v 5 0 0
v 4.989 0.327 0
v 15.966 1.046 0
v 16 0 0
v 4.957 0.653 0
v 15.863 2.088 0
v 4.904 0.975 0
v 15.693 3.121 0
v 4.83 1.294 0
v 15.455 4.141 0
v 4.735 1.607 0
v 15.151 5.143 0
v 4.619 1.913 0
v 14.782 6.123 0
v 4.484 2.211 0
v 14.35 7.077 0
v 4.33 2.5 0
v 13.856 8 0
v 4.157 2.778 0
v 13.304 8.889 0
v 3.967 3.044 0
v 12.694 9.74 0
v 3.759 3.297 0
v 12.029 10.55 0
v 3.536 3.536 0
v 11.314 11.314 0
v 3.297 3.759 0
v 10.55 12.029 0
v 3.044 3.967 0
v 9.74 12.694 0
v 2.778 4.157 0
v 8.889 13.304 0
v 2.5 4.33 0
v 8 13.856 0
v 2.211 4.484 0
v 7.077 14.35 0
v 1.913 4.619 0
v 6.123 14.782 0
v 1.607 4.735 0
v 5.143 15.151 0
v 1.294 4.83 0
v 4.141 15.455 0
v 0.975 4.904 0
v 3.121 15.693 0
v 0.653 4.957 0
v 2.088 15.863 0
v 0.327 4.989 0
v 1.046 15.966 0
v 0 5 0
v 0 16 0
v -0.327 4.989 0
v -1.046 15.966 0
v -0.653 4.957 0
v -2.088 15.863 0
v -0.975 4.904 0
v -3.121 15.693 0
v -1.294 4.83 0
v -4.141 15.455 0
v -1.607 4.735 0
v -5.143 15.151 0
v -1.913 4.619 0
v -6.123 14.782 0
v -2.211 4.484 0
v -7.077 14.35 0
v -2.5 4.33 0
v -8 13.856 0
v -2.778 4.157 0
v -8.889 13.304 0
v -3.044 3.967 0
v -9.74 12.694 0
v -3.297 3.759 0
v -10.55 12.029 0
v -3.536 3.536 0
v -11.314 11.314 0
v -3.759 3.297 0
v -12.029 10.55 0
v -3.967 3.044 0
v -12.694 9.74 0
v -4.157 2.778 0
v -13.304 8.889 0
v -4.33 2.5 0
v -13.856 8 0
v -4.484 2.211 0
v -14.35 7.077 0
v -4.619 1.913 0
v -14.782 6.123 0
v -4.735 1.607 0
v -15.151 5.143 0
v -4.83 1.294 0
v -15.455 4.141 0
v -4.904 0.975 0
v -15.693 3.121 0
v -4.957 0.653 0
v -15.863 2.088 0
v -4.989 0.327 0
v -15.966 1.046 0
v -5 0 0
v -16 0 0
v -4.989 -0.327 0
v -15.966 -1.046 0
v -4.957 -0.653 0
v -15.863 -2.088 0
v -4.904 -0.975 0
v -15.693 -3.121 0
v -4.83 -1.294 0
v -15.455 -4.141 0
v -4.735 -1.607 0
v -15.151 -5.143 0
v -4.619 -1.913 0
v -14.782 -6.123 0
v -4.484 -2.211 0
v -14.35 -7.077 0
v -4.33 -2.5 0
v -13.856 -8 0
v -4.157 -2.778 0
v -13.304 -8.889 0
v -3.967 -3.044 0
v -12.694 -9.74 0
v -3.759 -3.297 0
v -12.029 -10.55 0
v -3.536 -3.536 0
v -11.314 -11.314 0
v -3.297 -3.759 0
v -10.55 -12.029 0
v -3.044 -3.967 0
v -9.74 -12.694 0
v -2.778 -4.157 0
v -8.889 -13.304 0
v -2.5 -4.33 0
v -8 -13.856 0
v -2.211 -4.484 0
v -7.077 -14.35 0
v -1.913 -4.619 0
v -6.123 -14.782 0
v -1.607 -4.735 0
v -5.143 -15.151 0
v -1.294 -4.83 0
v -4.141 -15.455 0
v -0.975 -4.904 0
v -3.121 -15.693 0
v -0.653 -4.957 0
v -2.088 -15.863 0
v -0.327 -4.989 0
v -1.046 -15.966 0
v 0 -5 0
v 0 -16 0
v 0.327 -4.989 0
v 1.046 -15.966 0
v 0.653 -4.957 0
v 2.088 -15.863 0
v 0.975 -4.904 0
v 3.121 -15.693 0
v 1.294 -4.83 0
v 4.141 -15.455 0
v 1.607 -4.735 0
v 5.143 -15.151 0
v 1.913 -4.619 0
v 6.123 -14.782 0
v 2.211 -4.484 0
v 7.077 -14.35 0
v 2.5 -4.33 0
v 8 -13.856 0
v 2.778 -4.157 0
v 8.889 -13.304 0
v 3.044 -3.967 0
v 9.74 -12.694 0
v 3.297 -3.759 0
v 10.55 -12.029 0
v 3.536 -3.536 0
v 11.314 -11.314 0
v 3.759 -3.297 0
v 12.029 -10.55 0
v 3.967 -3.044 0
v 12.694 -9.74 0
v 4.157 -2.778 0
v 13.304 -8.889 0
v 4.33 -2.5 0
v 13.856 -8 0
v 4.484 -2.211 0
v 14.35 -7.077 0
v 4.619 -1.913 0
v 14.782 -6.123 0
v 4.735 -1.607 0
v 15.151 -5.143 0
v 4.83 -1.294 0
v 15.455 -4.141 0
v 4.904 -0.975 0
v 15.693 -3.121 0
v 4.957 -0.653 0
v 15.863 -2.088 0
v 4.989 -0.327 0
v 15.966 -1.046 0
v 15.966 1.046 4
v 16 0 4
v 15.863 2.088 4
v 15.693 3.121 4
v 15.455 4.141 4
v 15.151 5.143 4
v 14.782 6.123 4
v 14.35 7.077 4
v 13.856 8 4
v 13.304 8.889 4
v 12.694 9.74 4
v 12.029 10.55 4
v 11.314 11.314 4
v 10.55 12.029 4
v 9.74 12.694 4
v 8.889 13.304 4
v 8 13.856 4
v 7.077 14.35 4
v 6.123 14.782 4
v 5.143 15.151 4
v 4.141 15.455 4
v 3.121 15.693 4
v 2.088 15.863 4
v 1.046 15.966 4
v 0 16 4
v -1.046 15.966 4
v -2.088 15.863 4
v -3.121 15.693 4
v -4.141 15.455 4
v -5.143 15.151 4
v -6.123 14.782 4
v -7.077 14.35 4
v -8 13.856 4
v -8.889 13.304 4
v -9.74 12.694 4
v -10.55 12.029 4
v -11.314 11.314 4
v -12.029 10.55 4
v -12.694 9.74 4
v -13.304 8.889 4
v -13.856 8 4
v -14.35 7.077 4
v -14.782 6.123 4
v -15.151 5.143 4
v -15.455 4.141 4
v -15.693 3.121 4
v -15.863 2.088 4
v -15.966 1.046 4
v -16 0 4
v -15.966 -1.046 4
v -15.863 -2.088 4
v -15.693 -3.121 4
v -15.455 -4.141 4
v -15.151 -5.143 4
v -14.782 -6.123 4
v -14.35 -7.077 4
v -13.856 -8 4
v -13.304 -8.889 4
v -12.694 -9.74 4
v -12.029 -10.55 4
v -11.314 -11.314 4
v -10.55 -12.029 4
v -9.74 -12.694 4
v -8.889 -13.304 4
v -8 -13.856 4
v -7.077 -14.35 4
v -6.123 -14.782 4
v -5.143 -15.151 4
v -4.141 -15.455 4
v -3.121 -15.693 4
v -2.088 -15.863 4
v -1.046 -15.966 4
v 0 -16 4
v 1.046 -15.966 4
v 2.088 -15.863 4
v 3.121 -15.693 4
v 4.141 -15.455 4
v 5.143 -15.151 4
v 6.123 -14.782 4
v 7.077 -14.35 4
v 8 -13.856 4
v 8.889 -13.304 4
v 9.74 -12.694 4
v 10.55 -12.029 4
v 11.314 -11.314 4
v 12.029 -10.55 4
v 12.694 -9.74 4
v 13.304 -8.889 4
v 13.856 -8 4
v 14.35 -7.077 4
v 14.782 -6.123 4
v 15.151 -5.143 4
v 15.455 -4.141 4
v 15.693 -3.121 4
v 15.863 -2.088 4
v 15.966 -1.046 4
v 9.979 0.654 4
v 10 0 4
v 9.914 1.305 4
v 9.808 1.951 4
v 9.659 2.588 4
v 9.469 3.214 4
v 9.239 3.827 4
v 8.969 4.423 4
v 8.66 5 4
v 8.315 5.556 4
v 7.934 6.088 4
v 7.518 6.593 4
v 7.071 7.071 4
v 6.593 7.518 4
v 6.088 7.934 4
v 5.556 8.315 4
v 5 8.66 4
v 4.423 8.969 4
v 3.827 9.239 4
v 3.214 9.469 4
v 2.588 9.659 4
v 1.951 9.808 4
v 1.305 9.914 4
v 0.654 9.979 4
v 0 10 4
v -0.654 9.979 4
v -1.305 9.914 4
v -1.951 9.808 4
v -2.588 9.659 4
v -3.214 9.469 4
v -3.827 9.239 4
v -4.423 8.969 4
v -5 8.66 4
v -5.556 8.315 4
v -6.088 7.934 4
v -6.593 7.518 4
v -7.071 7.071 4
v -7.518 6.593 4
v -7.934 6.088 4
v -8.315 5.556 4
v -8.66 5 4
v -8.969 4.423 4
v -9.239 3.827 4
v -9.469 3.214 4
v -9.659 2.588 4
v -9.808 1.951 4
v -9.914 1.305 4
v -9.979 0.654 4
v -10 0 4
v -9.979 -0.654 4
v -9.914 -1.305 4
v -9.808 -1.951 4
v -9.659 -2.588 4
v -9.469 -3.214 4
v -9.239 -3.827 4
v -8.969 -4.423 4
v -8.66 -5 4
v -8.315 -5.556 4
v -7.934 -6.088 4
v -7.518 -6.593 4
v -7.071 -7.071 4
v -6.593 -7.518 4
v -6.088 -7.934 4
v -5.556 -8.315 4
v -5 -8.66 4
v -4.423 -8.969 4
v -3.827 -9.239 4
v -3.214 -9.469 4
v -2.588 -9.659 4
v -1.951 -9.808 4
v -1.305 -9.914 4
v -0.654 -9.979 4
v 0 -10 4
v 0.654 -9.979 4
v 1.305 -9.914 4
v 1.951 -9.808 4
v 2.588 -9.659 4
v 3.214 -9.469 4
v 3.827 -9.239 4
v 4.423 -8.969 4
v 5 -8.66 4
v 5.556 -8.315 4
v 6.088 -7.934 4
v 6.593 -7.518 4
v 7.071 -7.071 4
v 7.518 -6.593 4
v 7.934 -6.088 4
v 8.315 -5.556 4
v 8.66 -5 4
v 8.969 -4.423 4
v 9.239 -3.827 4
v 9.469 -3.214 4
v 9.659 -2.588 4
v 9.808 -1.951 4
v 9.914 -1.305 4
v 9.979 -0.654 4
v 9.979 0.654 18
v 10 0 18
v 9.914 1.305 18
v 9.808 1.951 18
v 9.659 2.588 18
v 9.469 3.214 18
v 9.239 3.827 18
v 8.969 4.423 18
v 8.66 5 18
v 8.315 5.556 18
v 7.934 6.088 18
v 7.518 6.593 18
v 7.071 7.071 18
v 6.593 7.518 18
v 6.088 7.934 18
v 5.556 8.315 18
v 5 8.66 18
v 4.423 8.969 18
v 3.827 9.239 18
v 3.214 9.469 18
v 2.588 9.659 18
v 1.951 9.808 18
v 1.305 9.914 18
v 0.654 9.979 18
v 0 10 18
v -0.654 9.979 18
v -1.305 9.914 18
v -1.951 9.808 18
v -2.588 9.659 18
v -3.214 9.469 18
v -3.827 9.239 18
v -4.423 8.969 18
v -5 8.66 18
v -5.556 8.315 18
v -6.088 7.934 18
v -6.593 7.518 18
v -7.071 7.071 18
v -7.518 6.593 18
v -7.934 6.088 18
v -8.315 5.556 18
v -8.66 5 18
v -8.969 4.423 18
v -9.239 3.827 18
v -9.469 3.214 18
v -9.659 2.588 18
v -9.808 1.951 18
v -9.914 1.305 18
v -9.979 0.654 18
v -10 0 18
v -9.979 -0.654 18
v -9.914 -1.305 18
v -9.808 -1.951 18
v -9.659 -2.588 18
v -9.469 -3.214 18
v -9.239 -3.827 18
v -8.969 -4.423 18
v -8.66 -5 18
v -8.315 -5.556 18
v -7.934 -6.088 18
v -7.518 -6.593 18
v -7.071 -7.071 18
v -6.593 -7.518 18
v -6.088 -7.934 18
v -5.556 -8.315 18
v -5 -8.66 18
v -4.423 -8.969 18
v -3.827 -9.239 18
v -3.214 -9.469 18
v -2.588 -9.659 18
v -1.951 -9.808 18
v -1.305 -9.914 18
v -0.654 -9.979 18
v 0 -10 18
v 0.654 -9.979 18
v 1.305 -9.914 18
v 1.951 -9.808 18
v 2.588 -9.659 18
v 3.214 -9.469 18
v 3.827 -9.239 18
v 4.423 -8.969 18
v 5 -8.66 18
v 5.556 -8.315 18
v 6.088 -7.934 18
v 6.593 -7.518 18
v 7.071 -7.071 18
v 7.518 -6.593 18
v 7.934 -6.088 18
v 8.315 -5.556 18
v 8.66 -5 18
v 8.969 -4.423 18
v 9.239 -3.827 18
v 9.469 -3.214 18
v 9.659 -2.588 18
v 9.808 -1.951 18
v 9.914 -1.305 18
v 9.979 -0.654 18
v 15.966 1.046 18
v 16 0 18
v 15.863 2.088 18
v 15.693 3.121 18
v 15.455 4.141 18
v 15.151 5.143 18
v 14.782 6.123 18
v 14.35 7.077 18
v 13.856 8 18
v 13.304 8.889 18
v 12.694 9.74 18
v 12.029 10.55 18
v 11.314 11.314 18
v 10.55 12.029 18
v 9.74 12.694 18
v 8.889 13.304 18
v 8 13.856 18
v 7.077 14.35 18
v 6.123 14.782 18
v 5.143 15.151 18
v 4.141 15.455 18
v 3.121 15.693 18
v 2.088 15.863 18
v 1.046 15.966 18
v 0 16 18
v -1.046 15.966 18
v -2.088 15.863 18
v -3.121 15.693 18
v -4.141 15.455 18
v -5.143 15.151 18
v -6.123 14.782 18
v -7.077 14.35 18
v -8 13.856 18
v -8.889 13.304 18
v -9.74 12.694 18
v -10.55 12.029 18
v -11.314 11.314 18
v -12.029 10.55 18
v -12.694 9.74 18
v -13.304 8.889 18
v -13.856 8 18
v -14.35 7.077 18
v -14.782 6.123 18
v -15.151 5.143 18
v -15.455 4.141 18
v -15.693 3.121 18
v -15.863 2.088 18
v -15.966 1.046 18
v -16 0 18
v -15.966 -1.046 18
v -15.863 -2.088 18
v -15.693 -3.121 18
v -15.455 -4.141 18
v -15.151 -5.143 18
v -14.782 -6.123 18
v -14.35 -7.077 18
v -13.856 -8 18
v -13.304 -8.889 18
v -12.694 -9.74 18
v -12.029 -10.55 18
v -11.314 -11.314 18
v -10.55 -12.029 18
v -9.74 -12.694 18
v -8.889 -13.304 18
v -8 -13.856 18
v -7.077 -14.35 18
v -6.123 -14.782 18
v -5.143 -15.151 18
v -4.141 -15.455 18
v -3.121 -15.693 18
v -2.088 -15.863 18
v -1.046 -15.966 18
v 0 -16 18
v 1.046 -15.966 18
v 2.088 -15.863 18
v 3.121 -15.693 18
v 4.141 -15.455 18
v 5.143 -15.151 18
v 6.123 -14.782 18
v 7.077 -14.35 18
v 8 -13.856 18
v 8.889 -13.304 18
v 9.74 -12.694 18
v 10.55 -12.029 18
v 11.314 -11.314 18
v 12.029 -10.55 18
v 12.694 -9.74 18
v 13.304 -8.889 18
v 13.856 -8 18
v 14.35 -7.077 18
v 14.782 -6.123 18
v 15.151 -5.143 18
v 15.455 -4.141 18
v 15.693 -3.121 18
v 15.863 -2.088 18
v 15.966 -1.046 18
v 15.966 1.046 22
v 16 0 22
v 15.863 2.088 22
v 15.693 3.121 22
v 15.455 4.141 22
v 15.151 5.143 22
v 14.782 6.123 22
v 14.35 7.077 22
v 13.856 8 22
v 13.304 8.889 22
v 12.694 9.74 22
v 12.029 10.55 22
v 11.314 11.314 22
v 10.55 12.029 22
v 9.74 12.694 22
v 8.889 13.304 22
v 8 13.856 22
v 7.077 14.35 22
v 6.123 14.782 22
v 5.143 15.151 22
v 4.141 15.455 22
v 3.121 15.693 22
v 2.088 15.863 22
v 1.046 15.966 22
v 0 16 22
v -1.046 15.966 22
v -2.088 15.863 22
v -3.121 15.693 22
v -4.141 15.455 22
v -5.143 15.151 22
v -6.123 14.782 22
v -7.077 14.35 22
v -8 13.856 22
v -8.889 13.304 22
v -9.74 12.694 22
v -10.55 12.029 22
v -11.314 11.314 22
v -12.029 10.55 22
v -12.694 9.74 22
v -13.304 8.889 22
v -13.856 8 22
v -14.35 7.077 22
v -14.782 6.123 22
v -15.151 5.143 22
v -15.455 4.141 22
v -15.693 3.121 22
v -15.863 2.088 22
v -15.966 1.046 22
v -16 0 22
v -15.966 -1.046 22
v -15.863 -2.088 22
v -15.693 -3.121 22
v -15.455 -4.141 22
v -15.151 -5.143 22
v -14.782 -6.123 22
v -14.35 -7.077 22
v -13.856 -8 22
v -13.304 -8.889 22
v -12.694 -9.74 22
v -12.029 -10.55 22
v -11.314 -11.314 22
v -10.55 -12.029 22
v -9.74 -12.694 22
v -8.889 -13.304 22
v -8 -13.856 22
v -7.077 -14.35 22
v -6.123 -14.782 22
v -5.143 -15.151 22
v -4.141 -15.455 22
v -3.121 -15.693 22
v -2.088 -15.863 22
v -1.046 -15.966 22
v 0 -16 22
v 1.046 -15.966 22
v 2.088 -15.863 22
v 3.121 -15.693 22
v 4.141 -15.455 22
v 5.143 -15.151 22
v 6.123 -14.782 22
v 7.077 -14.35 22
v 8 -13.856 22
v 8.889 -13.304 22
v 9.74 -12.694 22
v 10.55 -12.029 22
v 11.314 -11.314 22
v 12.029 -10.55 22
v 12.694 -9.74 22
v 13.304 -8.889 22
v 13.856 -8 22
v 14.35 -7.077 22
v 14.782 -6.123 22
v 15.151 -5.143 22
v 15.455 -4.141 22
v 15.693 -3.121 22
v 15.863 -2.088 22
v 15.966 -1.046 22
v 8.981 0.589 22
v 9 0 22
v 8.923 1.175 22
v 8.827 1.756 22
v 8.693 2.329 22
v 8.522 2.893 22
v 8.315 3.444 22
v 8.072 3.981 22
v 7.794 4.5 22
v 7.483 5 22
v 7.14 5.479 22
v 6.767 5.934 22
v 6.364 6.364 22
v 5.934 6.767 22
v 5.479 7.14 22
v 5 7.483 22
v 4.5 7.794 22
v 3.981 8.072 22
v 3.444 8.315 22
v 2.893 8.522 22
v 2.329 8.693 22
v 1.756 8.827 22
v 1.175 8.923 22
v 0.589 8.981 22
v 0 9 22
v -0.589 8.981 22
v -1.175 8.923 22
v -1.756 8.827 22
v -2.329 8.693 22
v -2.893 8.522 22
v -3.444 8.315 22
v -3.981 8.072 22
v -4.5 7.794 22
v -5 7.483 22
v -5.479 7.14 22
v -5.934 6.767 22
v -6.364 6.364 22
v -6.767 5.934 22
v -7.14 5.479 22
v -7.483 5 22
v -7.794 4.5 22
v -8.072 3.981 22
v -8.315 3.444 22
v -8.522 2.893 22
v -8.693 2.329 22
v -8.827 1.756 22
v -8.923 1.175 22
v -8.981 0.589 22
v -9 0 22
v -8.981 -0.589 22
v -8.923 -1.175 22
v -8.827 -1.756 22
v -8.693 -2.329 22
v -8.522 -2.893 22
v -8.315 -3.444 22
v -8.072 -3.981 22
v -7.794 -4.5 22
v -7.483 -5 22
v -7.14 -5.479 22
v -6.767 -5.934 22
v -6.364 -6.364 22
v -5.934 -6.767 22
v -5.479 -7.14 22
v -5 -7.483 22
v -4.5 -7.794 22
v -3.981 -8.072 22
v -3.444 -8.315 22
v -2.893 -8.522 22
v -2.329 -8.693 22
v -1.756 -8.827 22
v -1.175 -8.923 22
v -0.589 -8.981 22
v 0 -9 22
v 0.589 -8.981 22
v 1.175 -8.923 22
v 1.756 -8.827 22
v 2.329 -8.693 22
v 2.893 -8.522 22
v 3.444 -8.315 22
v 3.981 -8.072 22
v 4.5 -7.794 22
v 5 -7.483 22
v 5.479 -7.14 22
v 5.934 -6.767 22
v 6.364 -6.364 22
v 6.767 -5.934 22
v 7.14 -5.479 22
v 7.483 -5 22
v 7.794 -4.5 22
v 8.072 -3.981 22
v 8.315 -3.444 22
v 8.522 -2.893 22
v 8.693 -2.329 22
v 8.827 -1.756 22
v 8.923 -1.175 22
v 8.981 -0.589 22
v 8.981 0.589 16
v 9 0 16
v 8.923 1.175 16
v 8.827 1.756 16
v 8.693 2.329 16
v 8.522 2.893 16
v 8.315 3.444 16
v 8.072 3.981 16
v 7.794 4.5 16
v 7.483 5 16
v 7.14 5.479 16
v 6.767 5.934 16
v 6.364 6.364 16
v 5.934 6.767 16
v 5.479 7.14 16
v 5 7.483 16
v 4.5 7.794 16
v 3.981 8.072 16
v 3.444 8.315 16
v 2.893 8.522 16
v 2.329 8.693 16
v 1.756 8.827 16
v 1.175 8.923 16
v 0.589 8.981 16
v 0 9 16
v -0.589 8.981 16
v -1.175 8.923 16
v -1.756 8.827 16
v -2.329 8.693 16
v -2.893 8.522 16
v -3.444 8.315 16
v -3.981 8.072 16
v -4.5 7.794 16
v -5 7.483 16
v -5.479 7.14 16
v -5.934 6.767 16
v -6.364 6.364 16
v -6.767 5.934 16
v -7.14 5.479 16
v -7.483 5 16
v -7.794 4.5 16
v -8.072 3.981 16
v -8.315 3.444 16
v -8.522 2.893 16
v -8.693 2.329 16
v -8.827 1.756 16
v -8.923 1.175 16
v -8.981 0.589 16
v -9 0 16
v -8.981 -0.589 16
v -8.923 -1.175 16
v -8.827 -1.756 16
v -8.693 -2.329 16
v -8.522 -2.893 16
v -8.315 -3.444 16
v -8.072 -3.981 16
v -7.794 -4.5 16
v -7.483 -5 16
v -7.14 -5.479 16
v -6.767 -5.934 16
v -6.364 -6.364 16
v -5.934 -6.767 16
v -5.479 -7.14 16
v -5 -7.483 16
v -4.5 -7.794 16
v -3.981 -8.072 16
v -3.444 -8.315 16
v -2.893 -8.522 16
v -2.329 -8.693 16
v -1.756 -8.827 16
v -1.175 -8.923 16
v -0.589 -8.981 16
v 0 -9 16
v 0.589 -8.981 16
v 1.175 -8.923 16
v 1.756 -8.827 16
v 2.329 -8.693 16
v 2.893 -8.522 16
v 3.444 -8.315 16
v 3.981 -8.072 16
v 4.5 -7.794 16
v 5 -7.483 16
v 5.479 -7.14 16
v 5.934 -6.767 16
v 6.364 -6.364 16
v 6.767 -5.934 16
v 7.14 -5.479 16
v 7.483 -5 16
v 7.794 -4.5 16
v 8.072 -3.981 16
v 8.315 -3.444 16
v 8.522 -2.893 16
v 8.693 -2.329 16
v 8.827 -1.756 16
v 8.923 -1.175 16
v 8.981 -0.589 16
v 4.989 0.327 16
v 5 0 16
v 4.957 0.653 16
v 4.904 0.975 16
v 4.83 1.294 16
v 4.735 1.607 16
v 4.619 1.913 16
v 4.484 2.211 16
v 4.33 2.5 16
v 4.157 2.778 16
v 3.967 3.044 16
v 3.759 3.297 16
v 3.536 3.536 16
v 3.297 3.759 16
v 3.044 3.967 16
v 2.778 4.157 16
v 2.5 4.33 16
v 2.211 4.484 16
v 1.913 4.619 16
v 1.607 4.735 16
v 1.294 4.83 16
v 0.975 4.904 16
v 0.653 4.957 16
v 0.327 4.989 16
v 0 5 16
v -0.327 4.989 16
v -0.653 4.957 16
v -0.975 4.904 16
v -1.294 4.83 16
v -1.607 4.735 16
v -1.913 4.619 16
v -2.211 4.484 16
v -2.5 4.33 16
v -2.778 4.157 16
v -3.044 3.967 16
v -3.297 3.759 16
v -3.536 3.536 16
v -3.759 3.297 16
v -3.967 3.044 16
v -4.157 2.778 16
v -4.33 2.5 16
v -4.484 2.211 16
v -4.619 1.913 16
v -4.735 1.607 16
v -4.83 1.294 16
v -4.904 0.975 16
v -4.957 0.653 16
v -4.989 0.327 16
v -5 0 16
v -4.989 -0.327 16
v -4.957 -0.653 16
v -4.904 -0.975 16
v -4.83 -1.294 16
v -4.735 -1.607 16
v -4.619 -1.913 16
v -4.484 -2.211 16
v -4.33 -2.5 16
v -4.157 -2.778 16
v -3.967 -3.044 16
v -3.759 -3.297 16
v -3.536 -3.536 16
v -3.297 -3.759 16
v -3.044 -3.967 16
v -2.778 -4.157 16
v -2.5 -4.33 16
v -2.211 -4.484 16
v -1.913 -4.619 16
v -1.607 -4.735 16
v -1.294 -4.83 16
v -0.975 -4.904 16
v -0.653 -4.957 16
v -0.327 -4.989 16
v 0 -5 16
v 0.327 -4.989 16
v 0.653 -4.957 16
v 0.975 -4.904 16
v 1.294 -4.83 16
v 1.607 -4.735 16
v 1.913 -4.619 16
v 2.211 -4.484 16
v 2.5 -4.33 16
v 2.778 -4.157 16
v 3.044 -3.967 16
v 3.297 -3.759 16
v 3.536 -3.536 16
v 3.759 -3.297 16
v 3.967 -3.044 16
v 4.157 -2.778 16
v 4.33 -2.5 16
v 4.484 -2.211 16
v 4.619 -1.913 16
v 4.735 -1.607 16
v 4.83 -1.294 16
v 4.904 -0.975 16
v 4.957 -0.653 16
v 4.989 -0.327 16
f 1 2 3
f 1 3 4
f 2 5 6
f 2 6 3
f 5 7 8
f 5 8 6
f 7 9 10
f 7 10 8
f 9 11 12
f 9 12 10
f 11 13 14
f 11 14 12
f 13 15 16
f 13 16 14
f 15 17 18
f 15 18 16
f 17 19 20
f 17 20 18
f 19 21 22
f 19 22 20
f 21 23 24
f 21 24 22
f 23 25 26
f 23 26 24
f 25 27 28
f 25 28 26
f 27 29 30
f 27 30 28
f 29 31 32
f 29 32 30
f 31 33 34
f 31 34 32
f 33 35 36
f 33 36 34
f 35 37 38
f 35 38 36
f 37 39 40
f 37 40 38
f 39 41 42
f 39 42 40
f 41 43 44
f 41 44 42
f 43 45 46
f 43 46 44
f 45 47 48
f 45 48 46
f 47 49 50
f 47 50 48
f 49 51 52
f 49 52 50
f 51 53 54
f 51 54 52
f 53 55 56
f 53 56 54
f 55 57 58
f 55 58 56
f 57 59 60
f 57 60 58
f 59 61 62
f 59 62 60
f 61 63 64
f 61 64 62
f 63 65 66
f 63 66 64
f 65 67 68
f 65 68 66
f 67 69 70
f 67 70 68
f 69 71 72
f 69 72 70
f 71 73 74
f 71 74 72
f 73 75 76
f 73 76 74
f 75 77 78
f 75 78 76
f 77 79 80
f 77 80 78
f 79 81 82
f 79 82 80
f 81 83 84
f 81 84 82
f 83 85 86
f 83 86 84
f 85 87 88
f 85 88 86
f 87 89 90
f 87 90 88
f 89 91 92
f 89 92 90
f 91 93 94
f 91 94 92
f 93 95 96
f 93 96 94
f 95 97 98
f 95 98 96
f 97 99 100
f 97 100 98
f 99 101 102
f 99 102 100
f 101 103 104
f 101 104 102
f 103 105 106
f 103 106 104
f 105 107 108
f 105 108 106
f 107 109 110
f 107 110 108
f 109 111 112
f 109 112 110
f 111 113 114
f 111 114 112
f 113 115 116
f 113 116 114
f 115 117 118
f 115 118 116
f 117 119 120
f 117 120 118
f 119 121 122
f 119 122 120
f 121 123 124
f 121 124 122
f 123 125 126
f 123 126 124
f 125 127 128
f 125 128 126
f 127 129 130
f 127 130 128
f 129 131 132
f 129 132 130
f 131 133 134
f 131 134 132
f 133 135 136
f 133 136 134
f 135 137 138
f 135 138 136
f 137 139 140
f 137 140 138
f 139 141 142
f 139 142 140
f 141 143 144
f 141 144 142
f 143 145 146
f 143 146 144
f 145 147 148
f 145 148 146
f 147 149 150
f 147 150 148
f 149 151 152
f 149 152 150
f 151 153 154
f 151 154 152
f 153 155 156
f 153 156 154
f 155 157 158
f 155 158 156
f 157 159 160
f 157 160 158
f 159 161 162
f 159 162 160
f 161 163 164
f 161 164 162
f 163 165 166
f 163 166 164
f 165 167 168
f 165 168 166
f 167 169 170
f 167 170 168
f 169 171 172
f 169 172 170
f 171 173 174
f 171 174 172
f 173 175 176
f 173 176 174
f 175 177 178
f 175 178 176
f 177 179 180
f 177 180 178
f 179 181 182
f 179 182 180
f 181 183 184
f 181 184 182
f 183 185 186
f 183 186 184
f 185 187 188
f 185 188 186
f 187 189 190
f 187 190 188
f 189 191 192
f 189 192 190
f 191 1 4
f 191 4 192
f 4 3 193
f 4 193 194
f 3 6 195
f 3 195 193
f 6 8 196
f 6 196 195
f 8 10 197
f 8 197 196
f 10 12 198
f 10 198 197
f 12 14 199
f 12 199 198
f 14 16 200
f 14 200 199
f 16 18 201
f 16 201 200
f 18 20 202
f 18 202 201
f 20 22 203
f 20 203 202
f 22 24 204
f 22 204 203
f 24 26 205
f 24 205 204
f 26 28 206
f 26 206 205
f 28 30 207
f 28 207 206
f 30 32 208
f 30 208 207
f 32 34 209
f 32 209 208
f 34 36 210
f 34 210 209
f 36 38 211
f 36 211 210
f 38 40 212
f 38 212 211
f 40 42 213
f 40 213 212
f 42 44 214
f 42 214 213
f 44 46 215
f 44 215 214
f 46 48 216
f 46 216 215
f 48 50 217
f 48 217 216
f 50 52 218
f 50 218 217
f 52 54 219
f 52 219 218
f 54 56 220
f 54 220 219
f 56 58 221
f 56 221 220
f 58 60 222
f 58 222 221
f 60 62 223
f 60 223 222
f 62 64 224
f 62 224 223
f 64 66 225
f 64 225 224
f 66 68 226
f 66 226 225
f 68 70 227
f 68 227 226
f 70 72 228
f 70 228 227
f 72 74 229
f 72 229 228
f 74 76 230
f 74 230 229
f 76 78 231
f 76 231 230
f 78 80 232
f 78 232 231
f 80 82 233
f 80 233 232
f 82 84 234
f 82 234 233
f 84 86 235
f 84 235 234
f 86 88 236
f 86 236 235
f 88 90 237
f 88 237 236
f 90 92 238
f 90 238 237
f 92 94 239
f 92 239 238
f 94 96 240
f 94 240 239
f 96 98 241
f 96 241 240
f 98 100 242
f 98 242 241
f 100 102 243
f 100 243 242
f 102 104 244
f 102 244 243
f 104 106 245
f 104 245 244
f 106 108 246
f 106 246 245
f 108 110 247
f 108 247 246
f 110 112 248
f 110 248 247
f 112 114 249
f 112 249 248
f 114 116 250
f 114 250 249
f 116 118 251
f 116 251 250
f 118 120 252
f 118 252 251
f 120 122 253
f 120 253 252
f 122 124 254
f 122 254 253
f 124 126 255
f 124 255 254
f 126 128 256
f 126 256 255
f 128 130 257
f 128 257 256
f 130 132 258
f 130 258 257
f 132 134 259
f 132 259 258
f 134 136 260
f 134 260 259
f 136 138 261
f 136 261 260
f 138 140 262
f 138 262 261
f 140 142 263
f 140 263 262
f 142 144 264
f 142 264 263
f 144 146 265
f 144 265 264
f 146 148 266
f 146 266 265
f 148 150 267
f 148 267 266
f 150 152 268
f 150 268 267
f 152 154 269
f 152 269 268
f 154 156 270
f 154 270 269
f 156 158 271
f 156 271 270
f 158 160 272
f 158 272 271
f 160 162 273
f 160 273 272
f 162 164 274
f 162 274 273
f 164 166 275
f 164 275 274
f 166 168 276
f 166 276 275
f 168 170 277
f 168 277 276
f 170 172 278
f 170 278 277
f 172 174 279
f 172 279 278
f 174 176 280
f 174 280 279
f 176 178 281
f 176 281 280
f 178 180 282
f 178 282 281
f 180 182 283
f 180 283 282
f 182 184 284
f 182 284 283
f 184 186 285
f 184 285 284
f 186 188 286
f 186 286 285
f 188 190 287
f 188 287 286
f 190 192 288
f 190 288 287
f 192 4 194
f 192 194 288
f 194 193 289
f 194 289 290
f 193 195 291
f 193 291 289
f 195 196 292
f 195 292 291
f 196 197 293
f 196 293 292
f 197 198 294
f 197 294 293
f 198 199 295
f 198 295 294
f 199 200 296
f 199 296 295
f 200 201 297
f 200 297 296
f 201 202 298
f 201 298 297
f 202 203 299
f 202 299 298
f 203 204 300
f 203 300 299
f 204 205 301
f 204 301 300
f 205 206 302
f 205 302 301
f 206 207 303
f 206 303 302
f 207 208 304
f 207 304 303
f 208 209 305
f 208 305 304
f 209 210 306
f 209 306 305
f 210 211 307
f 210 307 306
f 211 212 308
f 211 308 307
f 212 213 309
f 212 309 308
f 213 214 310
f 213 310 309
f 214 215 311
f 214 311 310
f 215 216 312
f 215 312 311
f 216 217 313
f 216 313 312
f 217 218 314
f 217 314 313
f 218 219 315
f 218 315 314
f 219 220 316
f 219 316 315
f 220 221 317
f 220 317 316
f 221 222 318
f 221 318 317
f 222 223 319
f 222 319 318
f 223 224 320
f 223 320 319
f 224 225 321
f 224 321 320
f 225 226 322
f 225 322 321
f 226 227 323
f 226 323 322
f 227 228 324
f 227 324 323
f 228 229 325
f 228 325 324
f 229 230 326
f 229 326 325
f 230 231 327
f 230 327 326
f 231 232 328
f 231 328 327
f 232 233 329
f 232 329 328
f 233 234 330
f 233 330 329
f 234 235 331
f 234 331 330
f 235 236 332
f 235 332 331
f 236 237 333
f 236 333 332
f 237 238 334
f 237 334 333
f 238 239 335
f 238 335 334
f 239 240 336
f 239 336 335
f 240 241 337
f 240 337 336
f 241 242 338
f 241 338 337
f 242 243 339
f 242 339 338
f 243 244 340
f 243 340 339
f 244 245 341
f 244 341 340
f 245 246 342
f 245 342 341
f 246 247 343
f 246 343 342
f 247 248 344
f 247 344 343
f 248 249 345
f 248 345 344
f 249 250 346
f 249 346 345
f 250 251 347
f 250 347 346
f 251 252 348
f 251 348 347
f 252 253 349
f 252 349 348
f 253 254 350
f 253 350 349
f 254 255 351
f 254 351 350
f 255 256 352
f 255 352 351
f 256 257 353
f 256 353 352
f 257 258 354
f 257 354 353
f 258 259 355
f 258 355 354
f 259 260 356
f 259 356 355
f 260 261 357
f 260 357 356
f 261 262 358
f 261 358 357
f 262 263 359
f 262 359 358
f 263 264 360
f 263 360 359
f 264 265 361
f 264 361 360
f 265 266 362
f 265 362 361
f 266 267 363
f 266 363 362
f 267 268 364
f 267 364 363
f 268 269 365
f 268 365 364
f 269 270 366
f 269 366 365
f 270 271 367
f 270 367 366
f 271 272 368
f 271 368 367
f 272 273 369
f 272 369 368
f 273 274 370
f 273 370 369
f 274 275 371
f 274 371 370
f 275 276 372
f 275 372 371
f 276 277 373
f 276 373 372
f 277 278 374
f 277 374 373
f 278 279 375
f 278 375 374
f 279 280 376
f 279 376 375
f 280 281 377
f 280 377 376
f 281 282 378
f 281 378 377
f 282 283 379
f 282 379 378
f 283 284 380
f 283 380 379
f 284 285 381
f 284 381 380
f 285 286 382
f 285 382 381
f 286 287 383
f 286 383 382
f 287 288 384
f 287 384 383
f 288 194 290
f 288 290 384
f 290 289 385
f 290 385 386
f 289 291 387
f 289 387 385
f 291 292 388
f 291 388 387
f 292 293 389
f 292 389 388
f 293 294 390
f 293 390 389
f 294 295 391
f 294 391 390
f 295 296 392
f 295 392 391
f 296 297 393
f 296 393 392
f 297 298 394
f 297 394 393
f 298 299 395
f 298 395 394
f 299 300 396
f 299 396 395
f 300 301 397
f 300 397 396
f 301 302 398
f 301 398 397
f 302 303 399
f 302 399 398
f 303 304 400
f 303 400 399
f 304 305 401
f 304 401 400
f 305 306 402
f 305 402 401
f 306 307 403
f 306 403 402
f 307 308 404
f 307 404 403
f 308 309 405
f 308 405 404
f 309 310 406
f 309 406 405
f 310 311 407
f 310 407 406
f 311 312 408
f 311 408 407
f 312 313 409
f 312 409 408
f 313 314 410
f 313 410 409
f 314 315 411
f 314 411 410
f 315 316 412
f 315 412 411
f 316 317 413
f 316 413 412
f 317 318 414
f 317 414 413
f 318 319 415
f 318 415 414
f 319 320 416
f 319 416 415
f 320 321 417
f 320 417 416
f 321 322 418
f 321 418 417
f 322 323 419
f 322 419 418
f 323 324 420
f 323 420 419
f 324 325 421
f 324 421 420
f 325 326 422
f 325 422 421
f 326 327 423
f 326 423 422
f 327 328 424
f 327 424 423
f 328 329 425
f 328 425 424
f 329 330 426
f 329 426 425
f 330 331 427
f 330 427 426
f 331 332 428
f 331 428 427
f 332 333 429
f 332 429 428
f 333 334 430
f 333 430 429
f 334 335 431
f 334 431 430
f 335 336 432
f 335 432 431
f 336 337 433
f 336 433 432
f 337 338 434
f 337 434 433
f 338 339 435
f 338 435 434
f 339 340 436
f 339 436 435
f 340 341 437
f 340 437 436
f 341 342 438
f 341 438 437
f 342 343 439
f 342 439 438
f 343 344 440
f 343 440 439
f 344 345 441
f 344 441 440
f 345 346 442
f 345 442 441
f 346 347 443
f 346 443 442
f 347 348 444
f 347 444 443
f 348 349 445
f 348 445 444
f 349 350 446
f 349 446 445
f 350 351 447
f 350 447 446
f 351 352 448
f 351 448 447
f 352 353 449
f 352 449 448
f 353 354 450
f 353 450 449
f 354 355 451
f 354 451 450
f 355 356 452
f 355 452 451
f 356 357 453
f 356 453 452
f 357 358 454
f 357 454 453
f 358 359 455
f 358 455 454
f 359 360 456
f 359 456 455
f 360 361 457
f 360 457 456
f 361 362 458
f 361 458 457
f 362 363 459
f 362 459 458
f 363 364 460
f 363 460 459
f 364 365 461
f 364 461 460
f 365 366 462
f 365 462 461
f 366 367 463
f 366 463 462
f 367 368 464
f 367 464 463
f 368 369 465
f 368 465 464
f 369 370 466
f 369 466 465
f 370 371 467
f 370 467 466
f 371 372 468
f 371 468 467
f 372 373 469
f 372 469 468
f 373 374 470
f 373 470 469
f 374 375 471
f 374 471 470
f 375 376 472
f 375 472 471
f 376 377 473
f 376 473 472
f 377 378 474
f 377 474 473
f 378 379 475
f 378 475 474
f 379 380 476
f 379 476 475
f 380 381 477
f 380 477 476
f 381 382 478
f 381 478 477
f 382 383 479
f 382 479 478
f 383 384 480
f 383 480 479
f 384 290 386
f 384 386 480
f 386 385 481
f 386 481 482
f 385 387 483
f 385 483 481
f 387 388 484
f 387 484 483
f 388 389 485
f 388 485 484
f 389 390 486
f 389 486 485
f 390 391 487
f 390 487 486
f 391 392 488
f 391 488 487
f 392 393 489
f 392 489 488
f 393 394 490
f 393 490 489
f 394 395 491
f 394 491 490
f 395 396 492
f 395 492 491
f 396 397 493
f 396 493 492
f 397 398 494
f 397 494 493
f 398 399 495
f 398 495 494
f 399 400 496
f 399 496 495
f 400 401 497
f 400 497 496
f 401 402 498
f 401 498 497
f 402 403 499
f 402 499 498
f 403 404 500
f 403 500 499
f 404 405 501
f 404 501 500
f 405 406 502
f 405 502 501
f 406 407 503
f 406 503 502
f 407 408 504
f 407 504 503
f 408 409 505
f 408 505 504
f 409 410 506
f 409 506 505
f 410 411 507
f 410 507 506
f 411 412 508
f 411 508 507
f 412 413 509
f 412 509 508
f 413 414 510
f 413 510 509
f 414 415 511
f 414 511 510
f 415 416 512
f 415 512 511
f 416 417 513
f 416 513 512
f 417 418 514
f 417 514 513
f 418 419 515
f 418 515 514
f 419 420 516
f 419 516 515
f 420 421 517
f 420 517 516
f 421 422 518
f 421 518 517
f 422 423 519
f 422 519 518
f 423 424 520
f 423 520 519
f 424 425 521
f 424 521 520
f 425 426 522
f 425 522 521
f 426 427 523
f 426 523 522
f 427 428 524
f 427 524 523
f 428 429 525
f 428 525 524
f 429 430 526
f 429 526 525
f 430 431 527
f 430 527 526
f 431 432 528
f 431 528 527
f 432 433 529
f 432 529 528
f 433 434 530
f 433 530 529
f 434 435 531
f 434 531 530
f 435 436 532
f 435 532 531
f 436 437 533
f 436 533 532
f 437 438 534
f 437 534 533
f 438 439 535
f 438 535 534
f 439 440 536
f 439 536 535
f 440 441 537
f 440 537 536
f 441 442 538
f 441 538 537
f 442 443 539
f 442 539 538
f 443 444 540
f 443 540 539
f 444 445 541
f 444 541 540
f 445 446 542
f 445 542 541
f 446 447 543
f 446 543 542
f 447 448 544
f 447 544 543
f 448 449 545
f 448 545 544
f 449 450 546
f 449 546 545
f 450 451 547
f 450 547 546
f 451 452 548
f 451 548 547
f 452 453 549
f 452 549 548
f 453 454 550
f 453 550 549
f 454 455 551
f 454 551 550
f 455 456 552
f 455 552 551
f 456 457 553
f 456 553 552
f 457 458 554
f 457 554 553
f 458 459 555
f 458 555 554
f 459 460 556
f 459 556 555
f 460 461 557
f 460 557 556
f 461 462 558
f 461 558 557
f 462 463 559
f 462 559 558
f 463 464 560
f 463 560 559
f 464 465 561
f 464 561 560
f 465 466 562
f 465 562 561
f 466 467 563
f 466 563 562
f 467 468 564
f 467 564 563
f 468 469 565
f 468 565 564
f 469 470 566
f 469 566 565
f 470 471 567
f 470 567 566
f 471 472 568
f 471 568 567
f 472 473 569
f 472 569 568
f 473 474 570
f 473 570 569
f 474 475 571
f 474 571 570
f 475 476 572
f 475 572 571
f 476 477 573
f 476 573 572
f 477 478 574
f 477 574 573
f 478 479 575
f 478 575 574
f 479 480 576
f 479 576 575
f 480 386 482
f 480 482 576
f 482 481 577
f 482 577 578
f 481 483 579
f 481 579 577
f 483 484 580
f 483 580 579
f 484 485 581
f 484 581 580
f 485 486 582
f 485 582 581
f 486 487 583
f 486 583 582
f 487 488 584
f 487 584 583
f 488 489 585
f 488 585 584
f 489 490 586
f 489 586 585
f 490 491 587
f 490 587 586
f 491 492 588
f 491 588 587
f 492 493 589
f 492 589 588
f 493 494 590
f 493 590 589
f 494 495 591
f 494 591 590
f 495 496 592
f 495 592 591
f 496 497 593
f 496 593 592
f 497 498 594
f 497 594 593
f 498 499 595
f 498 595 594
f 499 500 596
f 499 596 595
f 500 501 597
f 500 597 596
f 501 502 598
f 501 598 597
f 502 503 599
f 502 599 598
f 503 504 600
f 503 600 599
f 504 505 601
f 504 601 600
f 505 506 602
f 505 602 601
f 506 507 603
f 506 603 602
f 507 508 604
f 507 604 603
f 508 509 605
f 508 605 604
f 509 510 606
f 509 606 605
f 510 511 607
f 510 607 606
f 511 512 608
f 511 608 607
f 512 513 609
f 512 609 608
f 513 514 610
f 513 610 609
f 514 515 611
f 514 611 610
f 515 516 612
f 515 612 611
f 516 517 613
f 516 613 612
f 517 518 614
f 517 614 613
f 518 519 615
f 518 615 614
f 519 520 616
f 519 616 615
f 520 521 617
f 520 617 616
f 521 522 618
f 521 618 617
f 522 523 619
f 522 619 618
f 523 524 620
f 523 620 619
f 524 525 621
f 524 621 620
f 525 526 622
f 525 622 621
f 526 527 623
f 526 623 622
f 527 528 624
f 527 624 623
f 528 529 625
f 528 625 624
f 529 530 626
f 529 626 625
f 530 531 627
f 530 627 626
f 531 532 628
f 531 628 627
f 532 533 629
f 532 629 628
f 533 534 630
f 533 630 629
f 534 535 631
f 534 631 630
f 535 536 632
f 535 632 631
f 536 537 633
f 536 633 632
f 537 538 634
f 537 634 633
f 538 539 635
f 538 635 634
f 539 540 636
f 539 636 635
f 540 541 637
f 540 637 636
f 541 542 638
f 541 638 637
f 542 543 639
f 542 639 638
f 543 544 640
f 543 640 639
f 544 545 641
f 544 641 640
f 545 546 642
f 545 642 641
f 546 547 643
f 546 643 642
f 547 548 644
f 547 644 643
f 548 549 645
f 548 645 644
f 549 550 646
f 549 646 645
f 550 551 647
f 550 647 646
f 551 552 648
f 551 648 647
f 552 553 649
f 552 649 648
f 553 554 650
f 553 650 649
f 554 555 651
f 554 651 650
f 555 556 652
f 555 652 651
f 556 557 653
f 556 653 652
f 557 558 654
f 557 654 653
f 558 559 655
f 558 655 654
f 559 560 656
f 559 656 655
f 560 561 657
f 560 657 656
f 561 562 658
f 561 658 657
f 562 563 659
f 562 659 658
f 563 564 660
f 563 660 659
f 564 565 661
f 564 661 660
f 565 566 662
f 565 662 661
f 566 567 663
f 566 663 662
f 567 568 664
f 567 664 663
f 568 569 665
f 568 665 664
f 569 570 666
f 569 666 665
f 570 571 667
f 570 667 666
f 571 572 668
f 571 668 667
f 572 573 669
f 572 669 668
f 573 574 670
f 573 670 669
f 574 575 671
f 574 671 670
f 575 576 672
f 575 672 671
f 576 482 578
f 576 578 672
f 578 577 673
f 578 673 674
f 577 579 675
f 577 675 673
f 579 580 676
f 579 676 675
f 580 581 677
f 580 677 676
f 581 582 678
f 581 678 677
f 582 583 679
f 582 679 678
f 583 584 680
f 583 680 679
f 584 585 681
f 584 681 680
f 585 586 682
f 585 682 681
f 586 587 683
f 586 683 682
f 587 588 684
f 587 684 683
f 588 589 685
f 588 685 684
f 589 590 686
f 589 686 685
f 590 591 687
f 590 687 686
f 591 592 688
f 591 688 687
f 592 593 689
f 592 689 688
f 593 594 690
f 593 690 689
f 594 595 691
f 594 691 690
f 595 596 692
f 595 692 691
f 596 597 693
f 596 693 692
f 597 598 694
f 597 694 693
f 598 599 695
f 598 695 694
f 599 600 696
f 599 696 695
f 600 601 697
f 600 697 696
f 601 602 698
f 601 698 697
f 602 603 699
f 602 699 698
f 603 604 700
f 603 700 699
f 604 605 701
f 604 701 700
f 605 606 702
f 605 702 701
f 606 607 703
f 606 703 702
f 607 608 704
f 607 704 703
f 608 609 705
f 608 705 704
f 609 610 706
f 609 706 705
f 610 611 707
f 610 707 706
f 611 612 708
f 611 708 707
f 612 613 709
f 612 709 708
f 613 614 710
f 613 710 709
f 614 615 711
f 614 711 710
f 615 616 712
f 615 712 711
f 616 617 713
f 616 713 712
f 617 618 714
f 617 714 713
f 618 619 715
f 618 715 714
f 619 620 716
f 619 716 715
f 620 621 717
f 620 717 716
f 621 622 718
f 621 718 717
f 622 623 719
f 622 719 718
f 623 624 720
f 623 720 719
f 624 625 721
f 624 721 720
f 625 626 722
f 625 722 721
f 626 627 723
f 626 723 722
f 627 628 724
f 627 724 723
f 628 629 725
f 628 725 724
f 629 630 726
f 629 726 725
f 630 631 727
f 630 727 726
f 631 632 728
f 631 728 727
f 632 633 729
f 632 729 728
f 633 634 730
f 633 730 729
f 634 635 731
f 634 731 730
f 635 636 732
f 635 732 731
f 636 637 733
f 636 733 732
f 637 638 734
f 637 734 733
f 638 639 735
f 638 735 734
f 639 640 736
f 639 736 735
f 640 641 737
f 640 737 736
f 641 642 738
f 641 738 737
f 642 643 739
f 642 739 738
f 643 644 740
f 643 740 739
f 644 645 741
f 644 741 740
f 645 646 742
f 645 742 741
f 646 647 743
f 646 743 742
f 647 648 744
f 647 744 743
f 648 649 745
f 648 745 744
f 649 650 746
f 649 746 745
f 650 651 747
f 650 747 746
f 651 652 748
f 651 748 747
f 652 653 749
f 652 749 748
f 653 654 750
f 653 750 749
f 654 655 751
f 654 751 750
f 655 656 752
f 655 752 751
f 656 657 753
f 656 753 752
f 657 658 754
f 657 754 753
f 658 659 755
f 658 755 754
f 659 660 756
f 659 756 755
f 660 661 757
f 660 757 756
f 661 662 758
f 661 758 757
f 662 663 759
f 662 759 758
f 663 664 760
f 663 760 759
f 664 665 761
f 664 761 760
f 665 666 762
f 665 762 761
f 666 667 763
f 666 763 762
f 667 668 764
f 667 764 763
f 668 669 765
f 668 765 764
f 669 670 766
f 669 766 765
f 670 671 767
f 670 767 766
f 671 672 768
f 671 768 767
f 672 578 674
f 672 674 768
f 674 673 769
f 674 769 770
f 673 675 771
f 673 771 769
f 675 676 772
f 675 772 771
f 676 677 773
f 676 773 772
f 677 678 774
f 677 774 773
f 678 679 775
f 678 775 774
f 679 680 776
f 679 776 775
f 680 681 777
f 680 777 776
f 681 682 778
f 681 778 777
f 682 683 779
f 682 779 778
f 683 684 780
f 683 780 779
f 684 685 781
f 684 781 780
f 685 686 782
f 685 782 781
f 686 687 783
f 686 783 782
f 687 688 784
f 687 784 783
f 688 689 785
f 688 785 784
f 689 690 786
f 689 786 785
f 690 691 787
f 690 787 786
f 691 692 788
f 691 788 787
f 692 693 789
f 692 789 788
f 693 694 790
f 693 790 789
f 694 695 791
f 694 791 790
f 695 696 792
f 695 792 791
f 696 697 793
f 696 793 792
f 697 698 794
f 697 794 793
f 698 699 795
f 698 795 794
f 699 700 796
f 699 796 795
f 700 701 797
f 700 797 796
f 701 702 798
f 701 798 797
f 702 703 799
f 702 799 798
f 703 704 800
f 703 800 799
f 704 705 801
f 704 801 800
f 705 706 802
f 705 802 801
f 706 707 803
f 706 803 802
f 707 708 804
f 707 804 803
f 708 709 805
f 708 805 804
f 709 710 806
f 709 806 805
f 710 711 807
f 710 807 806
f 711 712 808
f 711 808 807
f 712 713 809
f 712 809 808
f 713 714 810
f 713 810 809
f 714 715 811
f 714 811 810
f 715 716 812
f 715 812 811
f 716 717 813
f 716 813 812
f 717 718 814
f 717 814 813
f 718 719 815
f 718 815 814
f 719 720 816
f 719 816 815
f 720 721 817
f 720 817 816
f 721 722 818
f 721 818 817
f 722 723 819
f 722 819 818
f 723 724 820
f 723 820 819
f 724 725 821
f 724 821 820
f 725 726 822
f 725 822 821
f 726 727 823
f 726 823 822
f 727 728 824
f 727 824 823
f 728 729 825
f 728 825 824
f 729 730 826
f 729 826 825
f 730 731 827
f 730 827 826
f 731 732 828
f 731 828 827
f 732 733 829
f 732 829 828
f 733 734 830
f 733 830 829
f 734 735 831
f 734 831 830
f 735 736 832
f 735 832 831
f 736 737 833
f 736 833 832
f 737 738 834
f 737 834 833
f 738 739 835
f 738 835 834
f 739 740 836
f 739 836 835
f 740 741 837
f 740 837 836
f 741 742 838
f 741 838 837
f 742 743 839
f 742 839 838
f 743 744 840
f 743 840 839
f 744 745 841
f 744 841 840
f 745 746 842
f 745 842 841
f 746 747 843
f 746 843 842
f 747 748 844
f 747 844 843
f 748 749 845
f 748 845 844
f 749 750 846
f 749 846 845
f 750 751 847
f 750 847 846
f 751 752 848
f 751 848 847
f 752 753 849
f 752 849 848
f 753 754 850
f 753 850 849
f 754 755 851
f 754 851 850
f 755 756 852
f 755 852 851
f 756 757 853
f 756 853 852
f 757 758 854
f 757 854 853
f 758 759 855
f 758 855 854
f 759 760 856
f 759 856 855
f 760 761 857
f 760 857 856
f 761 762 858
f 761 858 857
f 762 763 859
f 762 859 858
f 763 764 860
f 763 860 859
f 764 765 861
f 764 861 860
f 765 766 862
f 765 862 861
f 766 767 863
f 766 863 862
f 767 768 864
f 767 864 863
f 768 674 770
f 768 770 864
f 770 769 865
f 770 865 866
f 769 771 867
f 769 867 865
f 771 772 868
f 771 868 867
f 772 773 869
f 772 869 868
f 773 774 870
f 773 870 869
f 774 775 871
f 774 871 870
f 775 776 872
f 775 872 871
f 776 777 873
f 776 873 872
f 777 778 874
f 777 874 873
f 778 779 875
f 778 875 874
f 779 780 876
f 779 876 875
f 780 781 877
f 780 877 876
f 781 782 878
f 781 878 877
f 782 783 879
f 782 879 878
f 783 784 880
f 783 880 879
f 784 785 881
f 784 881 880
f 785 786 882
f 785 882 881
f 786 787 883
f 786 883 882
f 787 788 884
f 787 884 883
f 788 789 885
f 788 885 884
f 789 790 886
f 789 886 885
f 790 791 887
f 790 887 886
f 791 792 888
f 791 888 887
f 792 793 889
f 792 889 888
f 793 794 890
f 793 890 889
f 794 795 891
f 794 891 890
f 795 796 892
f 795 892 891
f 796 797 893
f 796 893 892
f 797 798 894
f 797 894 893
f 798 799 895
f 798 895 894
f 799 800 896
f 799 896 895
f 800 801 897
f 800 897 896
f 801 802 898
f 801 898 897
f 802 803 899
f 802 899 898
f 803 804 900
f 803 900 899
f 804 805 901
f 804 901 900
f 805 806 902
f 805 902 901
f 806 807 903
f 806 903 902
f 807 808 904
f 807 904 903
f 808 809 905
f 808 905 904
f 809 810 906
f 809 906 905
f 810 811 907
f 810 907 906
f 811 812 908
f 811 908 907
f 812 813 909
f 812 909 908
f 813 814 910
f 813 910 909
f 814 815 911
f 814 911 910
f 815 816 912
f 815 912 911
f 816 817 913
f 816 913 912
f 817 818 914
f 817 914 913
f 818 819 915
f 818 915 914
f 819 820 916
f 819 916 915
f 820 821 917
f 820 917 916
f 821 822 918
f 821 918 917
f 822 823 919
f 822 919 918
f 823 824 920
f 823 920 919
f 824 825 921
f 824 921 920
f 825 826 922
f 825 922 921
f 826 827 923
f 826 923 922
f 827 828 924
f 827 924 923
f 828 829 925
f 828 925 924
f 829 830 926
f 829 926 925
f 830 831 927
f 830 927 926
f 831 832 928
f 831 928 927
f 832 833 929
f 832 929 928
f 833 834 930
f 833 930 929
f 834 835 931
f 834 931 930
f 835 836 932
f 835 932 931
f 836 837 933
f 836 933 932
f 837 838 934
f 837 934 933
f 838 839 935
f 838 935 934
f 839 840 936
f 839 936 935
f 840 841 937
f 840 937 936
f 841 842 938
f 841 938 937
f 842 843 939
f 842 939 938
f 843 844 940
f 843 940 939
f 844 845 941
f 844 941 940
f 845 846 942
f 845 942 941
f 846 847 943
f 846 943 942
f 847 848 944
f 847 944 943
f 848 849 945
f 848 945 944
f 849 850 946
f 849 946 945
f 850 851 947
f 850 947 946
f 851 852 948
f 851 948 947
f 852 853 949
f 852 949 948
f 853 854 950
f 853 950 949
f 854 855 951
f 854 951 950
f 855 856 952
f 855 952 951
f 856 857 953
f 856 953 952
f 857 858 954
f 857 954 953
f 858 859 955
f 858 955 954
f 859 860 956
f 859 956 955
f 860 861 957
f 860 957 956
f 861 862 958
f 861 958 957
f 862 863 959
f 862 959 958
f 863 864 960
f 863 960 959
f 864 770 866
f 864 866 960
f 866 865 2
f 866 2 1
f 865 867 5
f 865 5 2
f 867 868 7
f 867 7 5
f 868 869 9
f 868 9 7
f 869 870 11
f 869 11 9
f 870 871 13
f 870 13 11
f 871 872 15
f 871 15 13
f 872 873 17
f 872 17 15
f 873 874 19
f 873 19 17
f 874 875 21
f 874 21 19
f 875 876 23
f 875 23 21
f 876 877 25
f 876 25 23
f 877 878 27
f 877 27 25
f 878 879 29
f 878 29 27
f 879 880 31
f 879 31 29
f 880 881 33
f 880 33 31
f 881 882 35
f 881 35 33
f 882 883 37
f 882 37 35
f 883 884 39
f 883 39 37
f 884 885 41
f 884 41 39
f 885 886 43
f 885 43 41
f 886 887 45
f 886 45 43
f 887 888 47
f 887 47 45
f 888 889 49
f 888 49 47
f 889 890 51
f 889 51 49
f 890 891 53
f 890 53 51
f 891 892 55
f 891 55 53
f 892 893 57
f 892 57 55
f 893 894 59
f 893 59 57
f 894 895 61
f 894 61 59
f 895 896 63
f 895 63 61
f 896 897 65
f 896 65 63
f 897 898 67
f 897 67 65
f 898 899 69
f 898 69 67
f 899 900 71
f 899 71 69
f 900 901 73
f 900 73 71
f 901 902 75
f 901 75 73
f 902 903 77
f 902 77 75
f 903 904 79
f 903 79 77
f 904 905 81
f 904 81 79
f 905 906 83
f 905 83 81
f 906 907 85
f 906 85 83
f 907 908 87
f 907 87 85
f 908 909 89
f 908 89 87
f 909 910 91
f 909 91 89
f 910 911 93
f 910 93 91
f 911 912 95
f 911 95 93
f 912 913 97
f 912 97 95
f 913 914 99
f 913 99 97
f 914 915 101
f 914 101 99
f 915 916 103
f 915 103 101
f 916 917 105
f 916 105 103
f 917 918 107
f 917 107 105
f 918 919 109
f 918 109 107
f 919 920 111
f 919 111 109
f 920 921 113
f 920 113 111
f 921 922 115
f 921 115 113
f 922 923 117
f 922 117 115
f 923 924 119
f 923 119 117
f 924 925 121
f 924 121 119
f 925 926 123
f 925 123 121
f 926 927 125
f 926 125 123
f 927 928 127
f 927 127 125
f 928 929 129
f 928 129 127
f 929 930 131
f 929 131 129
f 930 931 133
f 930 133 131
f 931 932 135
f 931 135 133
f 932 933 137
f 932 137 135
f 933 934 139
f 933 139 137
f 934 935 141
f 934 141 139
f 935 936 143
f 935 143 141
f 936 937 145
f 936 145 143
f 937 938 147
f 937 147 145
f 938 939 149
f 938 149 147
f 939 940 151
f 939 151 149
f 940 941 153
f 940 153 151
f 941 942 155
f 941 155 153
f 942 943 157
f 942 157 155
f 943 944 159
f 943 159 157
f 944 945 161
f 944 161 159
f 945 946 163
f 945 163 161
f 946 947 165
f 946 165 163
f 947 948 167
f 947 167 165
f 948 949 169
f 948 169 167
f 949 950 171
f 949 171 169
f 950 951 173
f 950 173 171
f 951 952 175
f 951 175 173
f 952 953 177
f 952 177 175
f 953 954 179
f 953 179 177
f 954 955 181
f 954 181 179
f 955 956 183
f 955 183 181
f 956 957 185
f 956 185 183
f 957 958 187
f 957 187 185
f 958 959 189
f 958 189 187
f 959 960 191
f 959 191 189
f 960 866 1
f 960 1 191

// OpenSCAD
// Original MechIntel educational model. CC0-1.0. Units: mm.
// Not a standardized or load-rated component.
$fn=96;
// Section points: [radius, height], mm. Edit to change the profile.
section=[[5, 0], [16, 0], [16, 4], [10, 4], [10, 18], [16, 18], [16, 22], [9, 22], [9, 16], [5, 16]];
rotate_extrude($fn=96) polygon(points=section);
